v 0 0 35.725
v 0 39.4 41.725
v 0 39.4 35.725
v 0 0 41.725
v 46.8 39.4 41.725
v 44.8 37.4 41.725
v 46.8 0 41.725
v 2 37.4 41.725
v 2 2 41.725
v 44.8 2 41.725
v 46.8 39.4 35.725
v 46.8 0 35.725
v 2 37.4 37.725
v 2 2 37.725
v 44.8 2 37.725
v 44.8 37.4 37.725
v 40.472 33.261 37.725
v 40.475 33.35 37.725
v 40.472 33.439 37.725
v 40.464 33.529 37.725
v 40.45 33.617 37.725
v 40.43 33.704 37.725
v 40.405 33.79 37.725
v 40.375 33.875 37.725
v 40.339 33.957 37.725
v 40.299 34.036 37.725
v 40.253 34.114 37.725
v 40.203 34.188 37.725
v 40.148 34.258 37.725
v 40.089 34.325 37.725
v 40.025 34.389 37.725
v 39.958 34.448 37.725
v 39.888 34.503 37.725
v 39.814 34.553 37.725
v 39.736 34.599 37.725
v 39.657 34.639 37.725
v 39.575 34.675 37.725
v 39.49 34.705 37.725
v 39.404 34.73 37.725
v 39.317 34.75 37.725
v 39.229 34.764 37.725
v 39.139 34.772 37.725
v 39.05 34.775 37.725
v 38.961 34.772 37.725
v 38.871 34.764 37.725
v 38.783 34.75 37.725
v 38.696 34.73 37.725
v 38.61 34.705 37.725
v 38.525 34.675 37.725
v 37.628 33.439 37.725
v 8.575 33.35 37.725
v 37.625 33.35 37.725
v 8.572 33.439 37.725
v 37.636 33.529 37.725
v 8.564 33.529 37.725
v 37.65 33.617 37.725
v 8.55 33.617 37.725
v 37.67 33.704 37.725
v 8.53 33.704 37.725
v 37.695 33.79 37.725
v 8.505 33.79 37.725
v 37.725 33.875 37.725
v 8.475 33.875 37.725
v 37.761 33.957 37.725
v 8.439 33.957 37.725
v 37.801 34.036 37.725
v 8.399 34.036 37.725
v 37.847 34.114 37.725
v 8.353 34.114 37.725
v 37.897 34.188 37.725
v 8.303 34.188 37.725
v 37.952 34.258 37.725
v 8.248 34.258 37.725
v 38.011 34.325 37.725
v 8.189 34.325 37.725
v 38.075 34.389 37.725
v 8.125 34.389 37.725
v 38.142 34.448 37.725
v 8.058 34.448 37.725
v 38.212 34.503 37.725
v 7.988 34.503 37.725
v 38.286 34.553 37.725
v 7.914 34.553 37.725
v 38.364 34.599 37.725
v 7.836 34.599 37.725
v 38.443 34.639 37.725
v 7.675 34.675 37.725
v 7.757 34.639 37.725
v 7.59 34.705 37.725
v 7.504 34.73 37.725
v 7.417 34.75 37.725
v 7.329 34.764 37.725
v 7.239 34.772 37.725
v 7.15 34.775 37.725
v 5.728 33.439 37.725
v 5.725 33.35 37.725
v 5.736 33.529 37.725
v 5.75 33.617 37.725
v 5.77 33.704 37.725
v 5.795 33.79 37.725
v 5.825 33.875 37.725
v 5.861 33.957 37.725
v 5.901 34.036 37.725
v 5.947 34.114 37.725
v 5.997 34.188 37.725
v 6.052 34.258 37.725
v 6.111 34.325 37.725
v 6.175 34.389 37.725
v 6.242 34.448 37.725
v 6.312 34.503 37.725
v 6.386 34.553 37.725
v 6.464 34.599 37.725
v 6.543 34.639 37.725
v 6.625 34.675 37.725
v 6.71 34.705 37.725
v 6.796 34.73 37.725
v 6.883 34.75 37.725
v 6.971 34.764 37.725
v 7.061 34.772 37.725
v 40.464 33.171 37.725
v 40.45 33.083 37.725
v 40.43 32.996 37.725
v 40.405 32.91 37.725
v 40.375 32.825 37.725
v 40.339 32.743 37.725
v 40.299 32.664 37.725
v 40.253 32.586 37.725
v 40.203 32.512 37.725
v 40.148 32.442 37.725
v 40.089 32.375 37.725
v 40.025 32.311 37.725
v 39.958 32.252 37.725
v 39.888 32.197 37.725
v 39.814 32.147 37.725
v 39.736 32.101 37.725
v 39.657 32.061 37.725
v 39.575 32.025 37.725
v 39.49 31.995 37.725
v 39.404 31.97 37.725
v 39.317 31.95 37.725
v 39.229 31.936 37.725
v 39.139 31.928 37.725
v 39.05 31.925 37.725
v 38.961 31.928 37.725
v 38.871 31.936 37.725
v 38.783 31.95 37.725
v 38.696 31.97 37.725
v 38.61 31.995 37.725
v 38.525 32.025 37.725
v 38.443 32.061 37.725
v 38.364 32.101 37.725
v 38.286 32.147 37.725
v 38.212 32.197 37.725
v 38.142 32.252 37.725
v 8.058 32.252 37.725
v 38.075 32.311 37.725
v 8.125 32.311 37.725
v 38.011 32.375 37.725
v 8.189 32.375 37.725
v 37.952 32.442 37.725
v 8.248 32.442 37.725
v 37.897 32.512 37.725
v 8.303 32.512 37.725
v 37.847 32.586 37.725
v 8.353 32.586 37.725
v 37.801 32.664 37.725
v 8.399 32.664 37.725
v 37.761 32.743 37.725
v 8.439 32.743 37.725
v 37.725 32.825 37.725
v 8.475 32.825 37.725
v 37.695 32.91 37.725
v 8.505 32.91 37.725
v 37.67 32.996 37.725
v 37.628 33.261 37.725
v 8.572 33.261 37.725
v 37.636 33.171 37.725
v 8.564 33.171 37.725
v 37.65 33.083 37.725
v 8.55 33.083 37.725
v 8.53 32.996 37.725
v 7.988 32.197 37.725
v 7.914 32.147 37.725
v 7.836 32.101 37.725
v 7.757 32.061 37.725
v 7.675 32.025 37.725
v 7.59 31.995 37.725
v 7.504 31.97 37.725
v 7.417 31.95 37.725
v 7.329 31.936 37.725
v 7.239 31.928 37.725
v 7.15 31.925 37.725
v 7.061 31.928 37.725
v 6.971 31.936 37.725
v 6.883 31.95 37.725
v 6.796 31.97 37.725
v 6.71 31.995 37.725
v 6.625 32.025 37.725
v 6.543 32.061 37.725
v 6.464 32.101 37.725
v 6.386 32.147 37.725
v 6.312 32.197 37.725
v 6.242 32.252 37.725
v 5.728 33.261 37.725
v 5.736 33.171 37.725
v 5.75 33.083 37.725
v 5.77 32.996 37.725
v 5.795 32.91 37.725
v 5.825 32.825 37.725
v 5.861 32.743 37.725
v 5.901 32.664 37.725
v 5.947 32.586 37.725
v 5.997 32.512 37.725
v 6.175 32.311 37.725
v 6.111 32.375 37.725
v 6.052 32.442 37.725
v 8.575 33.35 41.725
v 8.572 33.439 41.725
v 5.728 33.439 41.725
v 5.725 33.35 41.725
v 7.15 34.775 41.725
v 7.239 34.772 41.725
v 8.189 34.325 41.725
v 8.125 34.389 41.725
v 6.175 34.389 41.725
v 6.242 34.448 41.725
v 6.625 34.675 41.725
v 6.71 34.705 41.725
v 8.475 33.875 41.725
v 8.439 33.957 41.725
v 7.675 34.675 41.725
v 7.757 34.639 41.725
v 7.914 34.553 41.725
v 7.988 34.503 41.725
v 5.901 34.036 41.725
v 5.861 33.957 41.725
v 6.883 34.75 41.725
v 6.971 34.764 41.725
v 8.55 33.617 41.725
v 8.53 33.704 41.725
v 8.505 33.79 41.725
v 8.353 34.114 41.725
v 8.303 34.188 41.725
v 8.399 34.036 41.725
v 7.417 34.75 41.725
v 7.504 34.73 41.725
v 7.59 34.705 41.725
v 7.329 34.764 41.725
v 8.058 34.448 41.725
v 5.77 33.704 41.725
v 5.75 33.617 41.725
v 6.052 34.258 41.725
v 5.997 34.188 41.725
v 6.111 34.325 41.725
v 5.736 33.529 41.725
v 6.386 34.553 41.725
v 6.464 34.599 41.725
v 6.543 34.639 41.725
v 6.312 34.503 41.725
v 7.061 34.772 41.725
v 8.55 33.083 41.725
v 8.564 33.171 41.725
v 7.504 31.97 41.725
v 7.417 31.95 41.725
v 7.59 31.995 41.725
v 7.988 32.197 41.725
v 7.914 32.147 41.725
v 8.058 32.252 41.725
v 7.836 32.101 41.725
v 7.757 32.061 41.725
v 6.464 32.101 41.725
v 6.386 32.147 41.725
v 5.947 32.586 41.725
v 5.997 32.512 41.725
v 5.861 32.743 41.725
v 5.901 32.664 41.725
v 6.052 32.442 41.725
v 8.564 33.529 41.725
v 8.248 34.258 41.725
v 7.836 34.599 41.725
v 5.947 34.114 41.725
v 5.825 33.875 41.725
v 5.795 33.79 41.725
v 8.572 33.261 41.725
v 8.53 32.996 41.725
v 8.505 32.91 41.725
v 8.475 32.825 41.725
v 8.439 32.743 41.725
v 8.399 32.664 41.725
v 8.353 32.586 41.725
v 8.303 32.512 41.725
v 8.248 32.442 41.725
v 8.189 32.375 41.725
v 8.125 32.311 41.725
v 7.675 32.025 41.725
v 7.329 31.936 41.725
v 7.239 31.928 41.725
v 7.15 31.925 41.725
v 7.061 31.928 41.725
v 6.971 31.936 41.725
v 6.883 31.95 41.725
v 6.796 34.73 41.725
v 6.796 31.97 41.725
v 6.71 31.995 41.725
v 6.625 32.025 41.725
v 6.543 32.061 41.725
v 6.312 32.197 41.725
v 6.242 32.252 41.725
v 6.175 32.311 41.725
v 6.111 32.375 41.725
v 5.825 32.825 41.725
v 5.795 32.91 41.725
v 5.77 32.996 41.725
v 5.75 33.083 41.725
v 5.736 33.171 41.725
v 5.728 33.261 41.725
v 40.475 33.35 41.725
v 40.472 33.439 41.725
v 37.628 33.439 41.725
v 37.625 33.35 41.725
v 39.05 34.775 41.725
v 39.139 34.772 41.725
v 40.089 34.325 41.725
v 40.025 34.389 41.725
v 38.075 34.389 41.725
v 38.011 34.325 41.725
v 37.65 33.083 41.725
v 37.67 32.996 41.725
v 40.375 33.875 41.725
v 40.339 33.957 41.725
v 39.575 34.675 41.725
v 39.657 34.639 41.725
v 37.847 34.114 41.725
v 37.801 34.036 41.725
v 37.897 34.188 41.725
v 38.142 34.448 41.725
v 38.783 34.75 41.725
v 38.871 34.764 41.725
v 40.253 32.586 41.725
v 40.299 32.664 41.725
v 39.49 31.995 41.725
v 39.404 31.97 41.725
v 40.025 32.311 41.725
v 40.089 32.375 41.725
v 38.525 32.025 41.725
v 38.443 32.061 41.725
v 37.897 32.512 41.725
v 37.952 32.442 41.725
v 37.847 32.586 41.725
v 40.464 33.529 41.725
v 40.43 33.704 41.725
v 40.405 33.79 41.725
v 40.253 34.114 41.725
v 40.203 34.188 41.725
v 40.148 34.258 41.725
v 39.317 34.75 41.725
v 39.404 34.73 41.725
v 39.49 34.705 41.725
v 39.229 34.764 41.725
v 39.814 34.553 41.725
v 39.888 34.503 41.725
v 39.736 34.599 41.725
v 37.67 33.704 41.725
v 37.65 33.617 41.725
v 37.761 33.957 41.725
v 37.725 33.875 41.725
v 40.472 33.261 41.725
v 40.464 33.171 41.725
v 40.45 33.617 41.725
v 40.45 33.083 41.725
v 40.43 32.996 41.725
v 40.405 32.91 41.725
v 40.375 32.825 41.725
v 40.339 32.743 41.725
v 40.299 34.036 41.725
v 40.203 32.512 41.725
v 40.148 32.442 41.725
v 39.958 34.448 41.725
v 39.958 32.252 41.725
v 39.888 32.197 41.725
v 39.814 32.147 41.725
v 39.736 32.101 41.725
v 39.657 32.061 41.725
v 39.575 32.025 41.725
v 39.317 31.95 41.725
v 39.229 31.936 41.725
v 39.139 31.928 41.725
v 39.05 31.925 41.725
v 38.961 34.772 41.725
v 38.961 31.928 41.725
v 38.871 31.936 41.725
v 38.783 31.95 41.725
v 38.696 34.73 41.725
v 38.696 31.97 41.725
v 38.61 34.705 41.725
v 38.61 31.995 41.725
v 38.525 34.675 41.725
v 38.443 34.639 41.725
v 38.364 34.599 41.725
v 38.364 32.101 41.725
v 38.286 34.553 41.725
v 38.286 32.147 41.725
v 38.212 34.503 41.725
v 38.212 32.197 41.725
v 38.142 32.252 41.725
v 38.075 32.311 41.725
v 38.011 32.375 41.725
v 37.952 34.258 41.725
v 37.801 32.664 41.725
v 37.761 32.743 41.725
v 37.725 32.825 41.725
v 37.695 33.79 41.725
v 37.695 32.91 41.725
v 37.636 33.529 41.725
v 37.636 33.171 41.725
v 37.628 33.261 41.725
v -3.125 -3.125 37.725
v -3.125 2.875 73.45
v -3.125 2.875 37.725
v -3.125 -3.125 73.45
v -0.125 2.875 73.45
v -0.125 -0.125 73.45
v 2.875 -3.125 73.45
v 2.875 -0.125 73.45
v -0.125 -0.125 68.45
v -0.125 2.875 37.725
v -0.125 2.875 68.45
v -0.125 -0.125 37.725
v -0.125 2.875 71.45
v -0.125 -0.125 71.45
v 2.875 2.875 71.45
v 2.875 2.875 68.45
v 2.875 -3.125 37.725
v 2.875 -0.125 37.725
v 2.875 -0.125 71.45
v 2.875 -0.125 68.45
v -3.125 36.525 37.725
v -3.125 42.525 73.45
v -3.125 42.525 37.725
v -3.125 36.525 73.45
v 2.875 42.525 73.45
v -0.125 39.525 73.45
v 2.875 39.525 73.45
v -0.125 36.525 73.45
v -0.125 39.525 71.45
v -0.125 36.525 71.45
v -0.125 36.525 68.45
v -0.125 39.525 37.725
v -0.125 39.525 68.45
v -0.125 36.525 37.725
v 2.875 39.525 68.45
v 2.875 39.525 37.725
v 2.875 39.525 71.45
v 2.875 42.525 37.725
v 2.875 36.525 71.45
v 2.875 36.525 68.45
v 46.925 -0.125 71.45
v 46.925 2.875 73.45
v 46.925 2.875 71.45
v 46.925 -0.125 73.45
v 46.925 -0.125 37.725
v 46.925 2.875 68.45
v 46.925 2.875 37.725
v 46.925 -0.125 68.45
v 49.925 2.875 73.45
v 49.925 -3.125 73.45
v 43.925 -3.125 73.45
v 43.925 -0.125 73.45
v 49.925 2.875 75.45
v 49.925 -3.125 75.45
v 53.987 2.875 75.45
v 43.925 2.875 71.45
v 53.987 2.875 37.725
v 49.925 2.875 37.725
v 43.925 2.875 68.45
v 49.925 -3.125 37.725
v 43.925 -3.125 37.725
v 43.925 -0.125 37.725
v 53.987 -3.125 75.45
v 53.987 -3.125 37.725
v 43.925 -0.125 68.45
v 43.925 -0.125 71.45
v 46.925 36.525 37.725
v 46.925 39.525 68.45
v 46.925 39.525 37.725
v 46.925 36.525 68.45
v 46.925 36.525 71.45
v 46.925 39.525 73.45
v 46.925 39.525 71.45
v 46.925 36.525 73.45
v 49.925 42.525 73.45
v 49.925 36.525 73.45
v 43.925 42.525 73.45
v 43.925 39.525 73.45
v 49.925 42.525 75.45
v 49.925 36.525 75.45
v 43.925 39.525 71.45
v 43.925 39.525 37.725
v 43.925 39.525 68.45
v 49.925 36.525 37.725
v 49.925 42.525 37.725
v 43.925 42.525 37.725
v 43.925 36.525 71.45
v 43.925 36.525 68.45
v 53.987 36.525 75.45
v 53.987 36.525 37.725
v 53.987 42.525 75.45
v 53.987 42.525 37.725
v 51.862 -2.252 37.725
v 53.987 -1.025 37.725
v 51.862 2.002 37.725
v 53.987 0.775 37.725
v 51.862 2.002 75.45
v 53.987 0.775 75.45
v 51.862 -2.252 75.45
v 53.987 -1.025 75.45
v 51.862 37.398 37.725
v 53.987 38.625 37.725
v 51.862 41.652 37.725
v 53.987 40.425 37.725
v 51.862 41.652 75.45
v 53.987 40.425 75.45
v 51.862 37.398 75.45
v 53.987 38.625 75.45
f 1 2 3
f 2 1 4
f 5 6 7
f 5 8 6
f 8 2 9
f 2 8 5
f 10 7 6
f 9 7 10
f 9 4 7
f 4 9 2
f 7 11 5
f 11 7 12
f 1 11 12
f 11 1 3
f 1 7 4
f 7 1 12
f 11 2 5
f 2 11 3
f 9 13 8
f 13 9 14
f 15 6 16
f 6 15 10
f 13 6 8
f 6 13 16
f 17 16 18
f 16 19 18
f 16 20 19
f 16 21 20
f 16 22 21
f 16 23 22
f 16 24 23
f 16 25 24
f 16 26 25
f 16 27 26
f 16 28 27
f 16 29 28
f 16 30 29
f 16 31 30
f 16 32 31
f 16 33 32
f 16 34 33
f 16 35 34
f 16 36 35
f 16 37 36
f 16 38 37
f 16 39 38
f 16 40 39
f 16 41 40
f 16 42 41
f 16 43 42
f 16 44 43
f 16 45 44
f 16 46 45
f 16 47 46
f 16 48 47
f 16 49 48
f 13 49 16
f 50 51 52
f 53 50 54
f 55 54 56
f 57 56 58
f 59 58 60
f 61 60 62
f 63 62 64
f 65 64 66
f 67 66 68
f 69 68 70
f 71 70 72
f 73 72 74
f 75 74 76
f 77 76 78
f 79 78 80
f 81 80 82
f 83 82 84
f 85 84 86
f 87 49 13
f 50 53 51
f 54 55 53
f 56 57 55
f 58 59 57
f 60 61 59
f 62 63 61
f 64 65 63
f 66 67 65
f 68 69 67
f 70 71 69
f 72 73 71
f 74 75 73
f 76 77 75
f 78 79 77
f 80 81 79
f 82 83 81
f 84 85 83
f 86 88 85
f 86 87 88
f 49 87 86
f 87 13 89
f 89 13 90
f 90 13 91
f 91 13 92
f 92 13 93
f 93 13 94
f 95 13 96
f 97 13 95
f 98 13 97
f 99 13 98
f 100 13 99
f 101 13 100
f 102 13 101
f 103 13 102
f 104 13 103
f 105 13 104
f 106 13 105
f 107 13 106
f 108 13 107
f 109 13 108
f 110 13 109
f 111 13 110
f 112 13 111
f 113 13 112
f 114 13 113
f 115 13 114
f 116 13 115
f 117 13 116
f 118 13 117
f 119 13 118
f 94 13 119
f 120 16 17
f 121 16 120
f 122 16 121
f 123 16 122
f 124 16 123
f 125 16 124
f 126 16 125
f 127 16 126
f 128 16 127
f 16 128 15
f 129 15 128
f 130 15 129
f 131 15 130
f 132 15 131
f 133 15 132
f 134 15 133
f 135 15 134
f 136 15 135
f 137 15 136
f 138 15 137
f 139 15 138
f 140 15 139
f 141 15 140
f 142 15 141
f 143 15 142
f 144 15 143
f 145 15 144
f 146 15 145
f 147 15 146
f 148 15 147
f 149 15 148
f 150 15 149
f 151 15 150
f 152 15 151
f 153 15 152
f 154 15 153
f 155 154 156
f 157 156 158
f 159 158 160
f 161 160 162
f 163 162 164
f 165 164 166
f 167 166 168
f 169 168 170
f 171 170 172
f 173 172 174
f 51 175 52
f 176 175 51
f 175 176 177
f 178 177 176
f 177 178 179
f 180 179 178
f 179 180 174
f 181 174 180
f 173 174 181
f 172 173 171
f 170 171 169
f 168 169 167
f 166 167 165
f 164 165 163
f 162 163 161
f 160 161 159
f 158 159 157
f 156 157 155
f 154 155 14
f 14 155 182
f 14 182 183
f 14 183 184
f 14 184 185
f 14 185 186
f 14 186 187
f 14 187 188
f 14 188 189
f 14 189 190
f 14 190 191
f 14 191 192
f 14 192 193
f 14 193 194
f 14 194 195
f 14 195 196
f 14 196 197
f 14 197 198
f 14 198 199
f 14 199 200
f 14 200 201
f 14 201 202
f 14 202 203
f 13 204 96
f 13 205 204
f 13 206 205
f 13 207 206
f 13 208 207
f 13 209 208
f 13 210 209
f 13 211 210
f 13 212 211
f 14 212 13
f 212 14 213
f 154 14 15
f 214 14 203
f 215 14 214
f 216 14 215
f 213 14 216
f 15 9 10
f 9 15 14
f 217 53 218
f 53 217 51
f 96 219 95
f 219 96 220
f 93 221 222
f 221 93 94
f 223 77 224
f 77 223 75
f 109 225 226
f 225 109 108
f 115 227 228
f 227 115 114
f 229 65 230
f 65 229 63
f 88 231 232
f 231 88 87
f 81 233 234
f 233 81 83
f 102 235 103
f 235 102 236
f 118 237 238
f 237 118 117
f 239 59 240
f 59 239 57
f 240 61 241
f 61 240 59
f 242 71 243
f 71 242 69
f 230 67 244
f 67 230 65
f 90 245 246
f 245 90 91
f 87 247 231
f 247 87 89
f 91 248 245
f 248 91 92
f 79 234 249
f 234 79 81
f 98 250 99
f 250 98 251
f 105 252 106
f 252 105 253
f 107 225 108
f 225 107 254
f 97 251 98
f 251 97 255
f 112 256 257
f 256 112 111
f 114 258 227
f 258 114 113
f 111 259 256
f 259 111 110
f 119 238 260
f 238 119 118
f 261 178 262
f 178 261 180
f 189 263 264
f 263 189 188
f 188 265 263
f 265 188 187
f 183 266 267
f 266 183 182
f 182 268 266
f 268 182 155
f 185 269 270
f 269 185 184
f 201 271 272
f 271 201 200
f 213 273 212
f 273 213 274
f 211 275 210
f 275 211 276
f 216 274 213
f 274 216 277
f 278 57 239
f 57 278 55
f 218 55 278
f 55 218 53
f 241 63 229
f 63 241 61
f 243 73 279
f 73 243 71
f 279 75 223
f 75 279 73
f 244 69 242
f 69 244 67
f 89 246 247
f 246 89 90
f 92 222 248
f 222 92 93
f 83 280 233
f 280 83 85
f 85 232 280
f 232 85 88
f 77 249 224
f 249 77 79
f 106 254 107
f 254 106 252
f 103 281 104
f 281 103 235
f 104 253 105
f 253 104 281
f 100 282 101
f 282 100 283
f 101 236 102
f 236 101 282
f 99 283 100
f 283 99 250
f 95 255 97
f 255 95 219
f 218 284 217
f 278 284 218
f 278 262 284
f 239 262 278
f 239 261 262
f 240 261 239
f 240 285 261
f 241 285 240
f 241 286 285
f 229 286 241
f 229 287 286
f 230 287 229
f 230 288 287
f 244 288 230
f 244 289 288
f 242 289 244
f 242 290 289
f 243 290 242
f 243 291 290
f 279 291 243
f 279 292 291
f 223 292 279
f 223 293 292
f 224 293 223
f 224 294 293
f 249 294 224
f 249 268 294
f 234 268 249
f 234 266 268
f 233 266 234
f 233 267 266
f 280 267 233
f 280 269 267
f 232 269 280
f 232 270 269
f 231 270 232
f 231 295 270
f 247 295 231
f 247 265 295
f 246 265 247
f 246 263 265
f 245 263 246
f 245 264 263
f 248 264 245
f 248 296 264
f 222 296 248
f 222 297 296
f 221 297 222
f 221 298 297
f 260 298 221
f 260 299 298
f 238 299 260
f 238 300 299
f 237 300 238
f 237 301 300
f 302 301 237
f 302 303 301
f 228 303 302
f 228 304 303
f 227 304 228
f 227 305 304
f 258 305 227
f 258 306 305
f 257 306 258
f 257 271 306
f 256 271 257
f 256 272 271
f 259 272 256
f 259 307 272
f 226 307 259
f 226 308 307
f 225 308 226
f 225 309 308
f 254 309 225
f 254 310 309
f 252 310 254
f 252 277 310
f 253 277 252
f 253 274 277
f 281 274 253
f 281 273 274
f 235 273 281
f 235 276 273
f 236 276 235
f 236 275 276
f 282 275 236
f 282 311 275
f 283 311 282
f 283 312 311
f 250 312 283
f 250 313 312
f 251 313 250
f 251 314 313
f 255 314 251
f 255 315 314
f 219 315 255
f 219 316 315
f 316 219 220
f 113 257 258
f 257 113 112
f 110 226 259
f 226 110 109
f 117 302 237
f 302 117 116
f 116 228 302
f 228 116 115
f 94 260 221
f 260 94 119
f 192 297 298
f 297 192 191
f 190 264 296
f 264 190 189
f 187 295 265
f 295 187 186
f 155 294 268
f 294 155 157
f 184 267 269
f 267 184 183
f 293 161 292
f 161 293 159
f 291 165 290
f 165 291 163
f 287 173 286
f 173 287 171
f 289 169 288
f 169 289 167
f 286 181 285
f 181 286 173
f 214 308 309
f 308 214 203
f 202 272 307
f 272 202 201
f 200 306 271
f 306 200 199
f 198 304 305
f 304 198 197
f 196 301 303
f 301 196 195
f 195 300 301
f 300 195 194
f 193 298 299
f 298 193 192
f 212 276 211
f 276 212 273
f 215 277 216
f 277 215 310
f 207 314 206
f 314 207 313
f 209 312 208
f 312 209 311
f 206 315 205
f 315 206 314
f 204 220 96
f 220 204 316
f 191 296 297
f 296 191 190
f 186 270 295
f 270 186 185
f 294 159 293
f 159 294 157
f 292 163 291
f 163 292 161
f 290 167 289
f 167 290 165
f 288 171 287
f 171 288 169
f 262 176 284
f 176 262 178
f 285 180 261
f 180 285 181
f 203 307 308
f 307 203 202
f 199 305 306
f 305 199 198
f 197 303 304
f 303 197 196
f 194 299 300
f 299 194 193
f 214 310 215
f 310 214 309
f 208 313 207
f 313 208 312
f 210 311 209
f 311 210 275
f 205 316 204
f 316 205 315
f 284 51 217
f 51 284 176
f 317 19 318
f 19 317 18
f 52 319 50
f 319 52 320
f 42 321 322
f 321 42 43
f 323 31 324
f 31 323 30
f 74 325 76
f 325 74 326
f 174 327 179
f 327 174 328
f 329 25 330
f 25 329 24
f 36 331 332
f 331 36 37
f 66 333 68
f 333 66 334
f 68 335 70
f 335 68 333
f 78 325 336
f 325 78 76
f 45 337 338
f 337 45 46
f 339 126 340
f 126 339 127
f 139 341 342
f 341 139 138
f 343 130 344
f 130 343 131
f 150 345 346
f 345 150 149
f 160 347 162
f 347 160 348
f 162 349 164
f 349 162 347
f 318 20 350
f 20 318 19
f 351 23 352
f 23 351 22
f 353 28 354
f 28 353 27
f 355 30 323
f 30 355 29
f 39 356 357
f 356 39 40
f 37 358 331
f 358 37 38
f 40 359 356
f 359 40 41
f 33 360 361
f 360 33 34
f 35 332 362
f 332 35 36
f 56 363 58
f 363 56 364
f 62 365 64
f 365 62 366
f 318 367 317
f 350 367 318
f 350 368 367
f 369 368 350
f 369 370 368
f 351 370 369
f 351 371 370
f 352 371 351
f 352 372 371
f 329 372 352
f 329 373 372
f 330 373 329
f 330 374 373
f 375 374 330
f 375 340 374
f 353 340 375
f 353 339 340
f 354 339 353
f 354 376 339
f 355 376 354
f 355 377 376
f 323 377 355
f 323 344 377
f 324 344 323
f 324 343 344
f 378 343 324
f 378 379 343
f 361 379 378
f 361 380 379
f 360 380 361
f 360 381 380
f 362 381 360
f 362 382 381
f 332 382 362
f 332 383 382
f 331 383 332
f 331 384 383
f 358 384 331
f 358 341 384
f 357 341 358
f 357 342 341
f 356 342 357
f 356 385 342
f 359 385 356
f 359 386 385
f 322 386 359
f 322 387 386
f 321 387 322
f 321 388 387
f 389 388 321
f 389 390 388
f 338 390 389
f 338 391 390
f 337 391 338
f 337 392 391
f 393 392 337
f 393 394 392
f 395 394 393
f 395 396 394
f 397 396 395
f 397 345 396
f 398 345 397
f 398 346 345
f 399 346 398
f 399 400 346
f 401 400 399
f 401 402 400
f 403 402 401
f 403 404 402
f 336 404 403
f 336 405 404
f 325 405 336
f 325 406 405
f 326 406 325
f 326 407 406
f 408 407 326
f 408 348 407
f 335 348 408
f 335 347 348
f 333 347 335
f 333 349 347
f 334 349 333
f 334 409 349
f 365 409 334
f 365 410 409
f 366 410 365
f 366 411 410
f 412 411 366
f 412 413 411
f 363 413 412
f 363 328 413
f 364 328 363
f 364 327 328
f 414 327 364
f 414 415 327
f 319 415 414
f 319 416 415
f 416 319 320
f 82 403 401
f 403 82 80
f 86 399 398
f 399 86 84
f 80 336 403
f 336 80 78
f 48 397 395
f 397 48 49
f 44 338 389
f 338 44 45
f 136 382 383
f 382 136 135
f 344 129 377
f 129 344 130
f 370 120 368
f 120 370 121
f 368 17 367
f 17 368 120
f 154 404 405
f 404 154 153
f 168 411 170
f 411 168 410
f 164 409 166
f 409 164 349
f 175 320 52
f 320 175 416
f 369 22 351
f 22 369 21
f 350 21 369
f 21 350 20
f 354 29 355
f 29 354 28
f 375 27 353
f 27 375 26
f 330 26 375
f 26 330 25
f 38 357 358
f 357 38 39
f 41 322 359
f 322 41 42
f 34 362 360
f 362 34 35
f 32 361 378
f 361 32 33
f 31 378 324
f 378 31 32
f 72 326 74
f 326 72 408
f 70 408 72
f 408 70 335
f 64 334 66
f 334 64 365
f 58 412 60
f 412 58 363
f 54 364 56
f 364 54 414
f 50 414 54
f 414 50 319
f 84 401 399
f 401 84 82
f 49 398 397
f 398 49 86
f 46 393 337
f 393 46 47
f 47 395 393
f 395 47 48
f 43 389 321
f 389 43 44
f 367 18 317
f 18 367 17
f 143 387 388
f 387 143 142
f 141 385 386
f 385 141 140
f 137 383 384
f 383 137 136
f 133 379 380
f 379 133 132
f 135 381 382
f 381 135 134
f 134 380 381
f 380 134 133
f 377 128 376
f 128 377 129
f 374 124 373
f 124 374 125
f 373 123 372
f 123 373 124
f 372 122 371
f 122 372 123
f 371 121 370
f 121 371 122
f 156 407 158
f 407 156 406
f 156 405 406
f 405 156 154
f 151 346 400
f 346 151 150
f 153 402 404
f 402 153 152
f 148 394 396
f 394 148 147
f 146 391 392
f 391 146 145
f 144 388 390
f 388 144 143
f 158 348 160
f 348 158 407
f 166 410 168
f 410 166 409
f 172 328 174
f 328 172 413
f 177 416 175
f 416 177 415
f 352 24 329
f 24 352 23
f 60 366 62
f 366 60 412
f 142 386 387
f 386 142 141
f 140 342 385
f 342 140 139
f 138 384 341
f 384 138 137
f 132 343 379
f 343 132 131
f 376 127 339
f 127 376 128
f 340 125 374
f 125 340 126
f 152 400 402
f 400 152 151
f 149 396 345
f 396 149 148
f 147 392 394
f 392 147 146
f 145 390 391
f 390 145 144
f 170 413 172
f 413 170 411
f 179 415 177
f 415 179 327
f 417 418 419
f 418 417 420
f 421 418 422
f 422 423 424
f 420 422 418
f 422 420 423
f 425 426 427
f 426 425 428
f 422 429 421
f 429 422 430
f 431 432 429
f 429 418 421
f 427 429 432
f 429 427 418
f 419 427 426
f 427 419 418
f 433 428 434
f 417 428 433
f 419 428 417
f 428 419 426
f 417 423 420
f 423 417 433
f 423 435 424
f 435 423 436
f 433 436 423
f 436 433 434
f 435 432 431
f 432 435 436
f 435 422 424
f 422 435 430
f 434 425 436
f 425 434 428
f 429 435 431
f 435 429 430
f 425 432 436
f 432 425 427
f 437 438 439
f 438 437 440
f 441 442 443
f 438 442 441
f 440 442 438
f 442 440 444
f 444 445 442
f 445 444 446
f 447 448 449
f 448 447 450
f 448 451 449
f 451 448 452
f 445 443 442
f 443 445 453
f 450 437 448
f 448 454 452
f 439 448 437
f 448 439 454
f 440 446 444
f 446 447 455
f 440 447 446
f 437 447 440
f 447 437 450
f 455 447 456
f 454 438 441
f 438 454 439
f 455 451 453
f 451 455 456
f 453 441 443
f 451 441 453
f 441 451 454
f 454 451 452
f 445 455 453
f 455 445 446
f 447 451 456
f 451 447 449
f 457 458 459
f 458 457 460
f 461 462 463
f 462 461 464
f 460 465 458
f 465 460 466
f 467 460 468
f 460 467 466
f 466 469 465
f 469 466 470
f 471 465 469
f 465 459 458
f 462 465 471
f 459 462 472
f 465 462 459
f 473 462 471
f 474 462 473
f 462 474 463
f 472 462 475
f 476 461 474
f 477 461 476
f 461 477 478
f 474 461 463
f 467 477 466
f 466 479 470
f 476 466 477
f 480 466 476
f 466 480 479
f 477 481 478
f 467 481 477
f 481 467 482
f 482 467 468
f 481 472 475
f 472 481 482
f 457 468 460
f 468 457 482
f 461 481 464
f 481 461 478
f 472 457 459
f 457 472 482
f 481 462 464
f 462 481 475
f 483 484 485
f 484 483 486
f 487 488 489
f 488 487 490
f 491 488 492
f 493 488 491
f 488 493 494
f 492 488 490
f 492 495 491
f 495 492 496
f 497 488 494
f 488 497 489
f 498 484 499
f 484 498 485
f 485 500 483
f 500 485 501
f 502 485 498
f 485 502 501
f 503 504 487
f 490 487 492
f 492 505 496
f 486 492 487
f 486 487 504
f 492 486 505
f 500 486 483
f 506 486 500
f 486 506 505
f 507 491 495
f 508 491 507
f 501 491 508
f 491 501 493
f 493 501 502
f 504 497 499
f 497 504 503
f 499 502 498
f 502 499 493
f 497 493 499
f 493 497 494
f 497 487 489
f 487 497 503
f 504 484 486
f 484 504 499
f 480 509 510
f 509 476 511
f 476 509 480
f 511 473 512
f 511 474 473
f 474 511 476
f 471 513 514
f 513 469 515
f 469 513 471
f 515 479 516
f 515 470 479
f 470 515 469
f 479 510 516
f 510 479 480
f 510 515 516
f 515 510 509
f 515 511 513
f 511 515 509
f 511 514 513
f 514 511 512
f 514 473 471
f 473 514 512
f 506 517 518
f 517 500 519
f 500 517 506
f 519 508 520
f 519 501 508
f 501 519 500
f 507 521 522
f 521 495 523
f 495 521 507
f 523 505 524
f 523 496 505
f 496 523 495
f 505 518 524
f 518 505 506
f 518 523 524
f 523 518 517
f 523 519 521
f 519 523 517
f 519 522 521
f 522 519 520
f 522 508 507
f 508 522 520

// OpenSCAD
// file: funcArduinoUNO.scad
module funcArduinoUNO(res=10,amais=2.6){
    // ----- ----- ----- Declaração de Variáveis ----- ----- ----- //
    folga1=0.125;

    pcbx=41.8;
    pcbx1=66.5;
    pcbx2=68.65;
    pcby1=2.9;
    pcby2=4.65;
    pcby3=53.55-14.95;
    pcby4=53.55-13.3;
    pcby5=53.55;
    pcbz=1.6;
    pcbr=3.45/2;
    pcbalt=1.6;
    pbcentre=(35+28.8)/2;
    pcbfuro1=3.1+pcbr;

    conx=16.35;
    cony=12.1;
    conz=10.7;
    tCx=-7.8;
    tCy=28.4+3.1;

    alix=14;
    aliy=8.9;
    aliz=11;
    tAx=-4.65;
    tAy=3.1;

    pin1x=20.75;
    pin2x=15.6;
    pin3x=25.8;
    pin4x=20.75;
    piny=2.55;
    pinz=8.55;
    tpin1x=26.7;
    tpin2x=tpin1x+pin1x+2.05;
    tpin3x=18;
    tpin4x=tpin3x+pin3x+0.9;
    tpinbaixoy=1.3;
    tpinaltoy=pcby5-1-piny;

    conectDisspx=9;
    conectDisspy=9;
    conectDisspz=4.55;
    tDsx=2;
    tDsy=2.75;

    conectEDSx=2.35;
    conectEDSy=7.2;
    conectEDSz=2.6;
    tEDSx=2.55;

    conectStepx=9.1;
    conectStepy=9.85;
    conectStepz=5.7;
    tSx=pcbx-conectStepx-0.6;

    conectStep123x=1.45;
    conectStep123y=3.25;
    conectStep123z=1.25;
    tS1x=tSx+conectStepx/2-(3*conectStep123x+2)/2;
    tS2x=tS1x+1+conectStep123x;
    tS3x=tS2x+1+conectStep123x;

    fio06=0.6;
    fioz=5.75;

    rcx=6.75;
    rcy=6.55;
    rcz=2;
    trcx=2.35;
    trcy=pcby5-rcy-0.7;

    rbr=3/2;
    rbalt=1;
    trbx=trcx+(rcx-6.25)+6.25/2;
    trby=trcy+rcy/2;

    ISCPx=5;
    ISCPy=7.35;
    ISCPz=2.6;
    tISCPx=pcbx2-ISCPx-0.8;
    tISCPy=24.4;

    oscr=3.5/2;
    oscalt=4;
    oscx=4.45;
    oscy=11.3;
    oscz=1.1;
    oschull=10-3.5;
    toscx=pcbx2-oscx-13.4;
    toscy=32.35-oscy+tpinbaixoy;

    osc2r=3.5/2;
    osc2alt=4;
    osc2x=11.3;
    osc2y=4.45;
    osc2z=1.1;
    osc2hull=10-3.5;
    tosc2x=pcbx2-osc2x-46.1;
    tosc2y=pcby5-osc2y-12.9;

    capr=6.3/2;
    capalt=6;
    cap2alt=6-4.1;
    tcapx=pcbx2-4*capr-43.65-0.6;
    tcap2x=pcbx2-2*capr-43.65;
    tcapy=6.05;

    // ----- ----- ----- Declaração de Variáveis ----- ----- ----- //
    module arrayPins(pit,alt,l,n){
        for(i=[0:1:n-1]){
            translate([i*(l/n)+(l/n)/2-pit/2,0,0])cube([pit,pit,alt]);
        }
    }

    // ----- ----- ----- MAIN ----- ----- ----- //
    // PCB
    difference(){
        linear_extrude(pcbz+amais)polygon(points=[[    0,    0],
                                                  [pcbx1,    0],
                                                  [pcbx1,pcby1],
                                                  [pcbx2,pcby2],
                                                  [pcbx2,pcby3],
                                                  [pcbx1,pcby4],
                                                  [pcbx1,pcby5],
                                                  [    0,pcby5]]);
        #translate([12.65+pcbr,0.65+pcbr,0])cylinder(pcbalt+amais,pcbr,pcbr,$fn=res);
        #translate([13.85+pcbr,pcby5-0.7-pcbr,0])cylinder(pcbalt+amais,pcbr,pcbr,$fn=res);
        #translate([pcbx2-0.35-pcbr,5.8+pcbr,0])cylinder(pcbalt+amais,pcbr,pcbr,$fn=res);
        #translate([pcbx2-0.4-pcbr,pcby5-16.3-pcbr,0])cylinder(pcbalt+amais,pcbr,pcbr,$fn=res);
    }
    // Periféricos de Comunicação/Conexão e Alimentação
    translate([tCx,tCy,pcbz+amais])cube([conx,cony,conz]);
    translate([tAx,tAy,pcbz+amais])cube([alix,aliy,aliz]);
    // Pinos Macho e Fêmea
    translate([tpin1x,tpinbaixoy,pcbz+amais])cube([pin1x,piny,pinz]);
    translate([tpin1x,tpinbaixoy+piny+0.5,pcbz+amais])cube([pin1x,piny,conectEDSz]);
    translate([tpin1x,tpinbaixoy+piny+0.5+piny/2-fio06/2,pcbz+amais+conectEDSz])arrayPins(fio06,fioz,pin1x,8);
    translate([tpin2x,tpinbaixoy,pcbz+amais])cube([pin2x,piny,pinz]);
    translate([tpin2x,tpinbaixoy+piny+0.5,pcbz+amais])cube([pin2x,piny,conectEDSz]);
    translate([tpin2x,tpinbaixoy+piny+0.5+piny/2-fio06/2,pcbz+amais+conectEDSz])arrayPins(fio06,fioz,pin2x,6);
    translate([tpin3x,tpinaltoy,pcbz+amais])cube([pin3x,piny,pinz]);
    translate([tpin3x,tpinaltoy-piny-0.5,pcbz+amais])cube([pin3x,piny,conectEDSz]);
    translate([tpin3x,tpinaltoy-piny-0.5+piny/2-fio06/2,pcbz+amais+conectEDSz])arrayPins(fio06,fioz,pin3x,10);
    translate([tpin4x,tpinaltoy,pcbz+amais])cube([pin4x,piny,pinz]);
    translate([tpin4x,tpinaltoy-piny-0.5,pcbz+amais])cube([pin4x,piny,conectEDSz]);
    translate([tpin4x,tpinaltoy-piny-0.5+piny/2-fio06/2,pcbz+amais+conectEDSz])arrayPins(fio06,fioz,pin4x,8);
    // Botão de Reset
    translate([trcx,trcy,pcbz+amais])cube([rcx,rcy,rcz]);
    translate([trbx,trby,pcbz+amais+rcz])cylinder(rbalt,rbr,rbr,$fn=res);
    // Conexão ISCP
    translate([tISCPx,tISCPy,pcbz+amais])cube([ISCPx,ISCPy,ISCPz]);
    translate([tISCPx,tISCPy+(ISCPy/3)/2-fio06/2,pcbz+amais+ISCPz])arrayPins(fio06,fioz,ISCPx,2);
    translate([tISCPx,tISCPy+ISCPy/3+(ISCPy/3)/2-fio06/2,pcbz+amais+ISCPz])arrayPins(fio06,fioz,ISCPx,2);
    translate([tISCPx,tISCPy+ISCPy/3+ISCPy/3+(ISCPy/3)/2-fio06/2,pcbz+amais+ISCPz])arrayPins(fio06,fioz,ISCPx,2);
    // Osciladores 1 e 2
    translate([toscx,toscy,pcbz+amais])cube([oscx,oscy,oscz]);
    hull(){
        translate([toscx+oscx/2,toscy+oscy/2-oschull/2,pcbz+amais])cylinder(oscalt,oscr,oscr,$fn=res);
        translate([toscx+oscx/2,toscy+oscy/2+oschull/2,pcbz+amais])cylinder(oscalt,oscr,oscr,$fn=res);
    }
    translate([tosc2x,tosc2y,pcbz+amais])cube([osc2x,osc2y,osc2z]);
    hull(){
        translate([tosc2x+osc2x/2-oschull/2,tosc2y+osc2y/2,pcbz+amais])cylinder(oscalt,oscr,oscr,$fn=res);
        translate([tosc2x+osc2x/2+oschull/2,tosc2y+osc2y/2,pcbz+amais])cylinder(oscalt,oscr,oscr,$fn=res);
    }
    // Capacitores
    translate([tcapx,tcapy,pcbz+amais])cube([2*capr,2*capr,cap2alt]);
    translate([tcap2x,tcapy,pcbz+amais])cube([2*capr,2*capr,cap2alt]);
    translate([tcapx+capr,tcapy+capr,pcbz+amais])cylinder(capalt,capr,capr,$fn=res);
    translate([tcap2x+capr,tcapy+capr,pcbz+amais])cylinder(capalt,capr,capr,$fn=res);
}

funcArduinoUNO(100);
// file: funcBaseEL3DArduinoUNO.scad
use <funcArduinoUNO.scad>
module funcBaseEL3DArduinoUNO(res=100,amais2=2.6){
    // ----- ----- ----- Declaração de Variáveis ----- ----- ----- //
    folga1=0.125;
    folga10=1;

    pcbx=41.8;
    pcbx1=66.5;
    pcbx2=68.65;
    pcby1=2.9;
    pcby2=4.65;
    pcby3=53.55-14.95;
    pcby4=53.55-13.3;
    pcby5=53.55;
    pcbz=1.6;
    pcbr=3.45/2;
    pcbalt=1.6;
    pbcentre=(35+28.8)/2;
    pcbfuro1=3.1+pcbr;

    conx=16.35;
    cony=12.1;
    conz=10.7;
    tCx=-7.8;
    tCy=28.4+3.1;

    alix=14;
    aliy=8.9;
    aliz=11;
    tAx=-4.65;
    tAy=3.1;

    pin1x=20.75;
    pin2x=15.6;
    pin3x=25.8;
    pin4x=20.75;
    piny=2.55;
    pinz=8.55;
    tpin1x=26.7;
    tpin2x=tpin1x+pin1x+2.05;
    tpin3x=18;
    tpin4x=tpin3x+pin3x+0.9;
    tpinbaixoy=1.3;
    tpinaltoy=pcby5-1-piny;

    conectDisspx=9;
    conectDisspy=9;
    conectDisspz=4.55;
    tDsx=2;
    tDsy=2.75;

    conectEDSx=2.35;
    conectEDSy=7.2;
    conectEDSz=2.6;
    tEDSx=2.55;

    conectStepx=9.1;
    conectStepy=9.85;
    conectStepz=5.7;
    tSx=pcbx-conectStepx-0.6;

    conectStep123x=1.45;
    conectStep123y=3.25;
    conectStep123z=1.25;
    tS1x=tSx+conectStepx/2-(3*conectStep123x+2)/2;
    tS2x=tS1x+1+conectStep123x;
    tS3x=tS2x+1+conectStep123x;

    fio06=0.6;
    fioz=5.75;

    rcx=6.75;
    rcy=6.55;
    rcz=2;
    trcx=2.35;
    trcy=pcby5-rcy-0.7;

    rbr=3/2;
    rbalt=1;
    trbx=trcx+(rcx-6.25)+6.25/2;
    trby=trcy+rcy/2;

    ISCPx=5;
    ISCPy=7.35;
    ISCPz=2.6;
    tISCPx=pcbx2-ISCPx-0.8;
    tISCPy=24.4;

    oscr=3.5/2;
    oscalt=4;
    oscx=4.45;
    oscy=11.3;
    oscz=1.1;
    oschull=10-3.5;
    toscx=pcbx2-oscx-13.4;
    toscy=32.35-oscy+tpinbaixoy;

    osc2r=3.5/2;
    osc2alt=4;
    osc2x=11.3;
    osc2y=4.45;
    osc2z=1.1;
    osc2hull=10-3.5;
    tosc2x=pcbx2-osc2x-46.1;
    tosc2y=pcby5-osc2y-12.9;

    capr=6.3/2;
    capalt=6;
    cap2alt=6-4.1;
    tcapx=pcbx2-4*capr-43.65-0.6;
    tcap2x=pcbx2-2*capr-43.65;
    tcapy=6.05;

    espParede=2;
    baseARDx=pcbx2+2*folga10;
    baseARDy=pcby5+2*folga10;
    baseARDz=2.4;

    // ----- ----- ----- Declaração de Variáveis ----- ----- ----- //
    module arrayPins(pit,alt,l,n){
        for(i=[0:1:n-1]){
            translate([i*(l/n)+(l/n)/2-pit/2,0,0])cube([pit,pit,alt]);
        }
    }
    
    //translate([espParede+folga10,espParede+folga10,espParede])funcArduinoUNO(res,amais2);

    // ----- ----- ----- MAIN ----- ----- ----- //

    // Base do Arduino
    difference(){
        translate([-folga1,-folga1,0])
        cube([baseARDx+2*espParede+2*folga1,baseARDy+2*espParede+2*folga1,baseARDz+espParede]);
        #translate([espParede,espParede,espParede])cube([baseARDx,baseARDy,baseARDz]);
    }
    // Encaixe Cilíndrico do Arduino
    translate([espParede+folga10,espParede+folga10,espParede]){
        translate([12.65+pcbr,0.65+pcbr,0])cylinder(pcbalt+amais2+espParede,pcbr-folga1,pcbr-folga1,$fn=res);
        translate([13.85+pcbr,pcby5-0.7-pcbr,0])cylinder(pcbalt+amais2+espParede,pcbr-folga1,pcbr-folga1,$fn=res);
        translate([pcbx2-0.35-pcbr,5.8+pcbr,0])cylinder(pcbalt+amais2+espParede,pcbr-folga1,pcbr-folga1,$fn=res);
        translate([pcbx2-0.4-pcbr,pcby5-16.3-pcbr,0])cylinder(pcbalt+amais2+espParede,pcbr-folga1,pcbr-folga1,$fn=res);
    }
} 

funcBaseEL3DArduinoUNO();
// file: funcWcmcuStepperMotor.scad
module funcWcmcuStepperMotor(res=10,amais=2){
    // ----- ----- ----- Declaração de Variáveis ----- ----- ----- //
    folga1=0.125;

    pcbx=41.8;
    pcby=34.4;
    pcbz=1.6;
    pcbr=(35-28.8)/4;
    pcbalt=1.6;
    pbcentre=(35+28.8)/2;
    pcbfuro1=3.1+pcbr;
    pcbfuro2=pcby-2-pcbr;

    conectMotorx=12.4;
    conectMotory=7;
    conectMotorz=5.5;
    tMx=28.2;
    tMy=-0.65;

    conectAlix=10.5;
    conectAliy=2.35;
    conectAliz=14.15+10.5-pcbz;
    tAx=3.5;
    tAy=1.4;

    conectDRVx=20.9;
    conectDRVy=15.3;
    conectDRVz=14.25;
    tDRVx=7.25;
    tDRVy=6.55;

    conectDisspx=9;
    conectDisspy=9;
    conectDisspz=4.55;
    tDsx=2;
    tDsy=2.75;
    tDsz=conectDRVz;

    conectEDSx=2.35;
    conectEDSy=7.2;
    conectEDSz=2.6;
    tEDSx=2.55;
    tEDSy=pcby-14.3-conectEDSy;

    //conectEDSx=2.35;
    //conectEDSy=7.2;
    //conectEDSz=2.6;
    //tEDSx=2.55;
    //tEDSy=pcby-14.3-conectEDSy;

    conectStepx=9.1;
    conectStepy=9.85;
    conectStepz=5.7;
    tSx=pcbx-conectStepx-0.6;
    tSy=pcby-12.8-conectStepy;

    conectStep123x=1.45;
    conectStep123y=3.25;
    conectStep123z=1.25;
    tS1x=tSx+conectStepx/2-(3*conectStep123x+2)/2;
    tS1y=tSy+conectStepy/2-conectStep123y/2;
    tS2x=tS1x+1+conectStep123x;
    tS2y=tSy+conectStepy/2-conectStep123y/2;
    tS3x=tS2x+1+conectStep123x;
    tS3y=tSy+conectStepy/2-conectStep123y/2;

    fio06=0.6;
    fioz=5.75;

    // ----- ----- ----- MAIN ----- ----- ----- //
    difference(){
        cube([pcbx,pcby,pcbz+amais]);
        #translate([pcbfuro1,pcbfuro2,0])cylinder(pcbalt+amais,pcbr,pcbr,$fn=res);
        #translate([pcbfuro1+pbcentre,pcbfuro2,0])cylinder(pcbalt+amais,pcbr,pcbr,$fn=res);
    }

    translate([tMx,tMy,pcbz+amais])cube([conectMotorx,conectMotory,conectMotorz]);
    translate([tAx,tAy,pcbz+amais])cube([conectAlix,conectAliy,conectAliz]);
    translate([tDRVx,tDRVy,pcbz+amais])cube([conectDRVx,conectDRVy,conectDRVz]);
    translate([tDRVx+tDsx,tDRVy+tDsy,tDsz+pcbz+amais])cube([conectDisspx,conectDisspy,conectDisspz]);
    translate([tEDSx,tEDSy,pcbz+amais])cube([conectEDSx,conectEDSy,conectEDSz]);
    translate([tSx,tSy,pcbz+amais])cube([conectStepx,conectStepy,conectStepz]);
    translate([tS1x,tS1y,conectStepz+pcbz+amais])cube([conectStep123x,conectStep123y,conectStep123z]);
    translate([tS2x,tS2y,conectStepz+pcbz+amais])cube([conectStep123x,conectStep123y,conectStep123z]);
    translate([tS3x,tS3y,conectStepz+pcbz+amais])cube([conectStep123x,conectStep123y,conectStep123z]);
    translate([tEDSx+conectEDSx/2-fio06/2,tEDSy+(conectEDSy/3)/2-fio06/2,conectEDSz+pcbz+amais])cube([fio06,fio06,fioz]);
    translate([tEDSx+conectEDSx/2-fio06/2,tEDSy+(conectEDSy/3)/2-fio06/2+conectEDSy/3,conectEDSz+pcbz+amais])cube([fio06,fio06,fioz]);
    translate([tEDSx+conectEDSx/2-fio06/2,tEDSy+(conectEDSy/3)/2-fio06/2+conectEDSy/3+conectEDSy/3,conectEDSz+pcbz+amais])cube([fio06,fio06,fioz]);
}

funcWcmcuStepperMotor();
// main file
// ----- ----- ----- Declaração de Variáveis ----- ----- ----- //
res=100;
folga1=0.125;
folga10=0.5;

amais=2; //0 ou 2

pcbx=41.8;
pcby=34.4;
pcbz=1.6;

//pcbx=41.8;
pcbx1=66.5;
pcbx2=68.65;
pcby1=2.9;
pcby2=4.65;
pcby3=53.55-14.95;
pcby4=53.55-13.3;
pcby5=53.55;
//pcbz=1.6;
//pcbr=3.45/2;
//pcbalt=1.6;
//pbcentre=(35+28.8)/2;
//pcbfuro1=3.1+pcbr;

espParede=2;
basex=pcbx+2*folga10;
basey=pcby+2*folga10;
basez=2*espParede;
baseARDx=pcbx2+2*folga10;
baseARDy=pcby5+2*folga10;
baseARDz=2.4;

pcbr=(35-28.8)/4-folga1;
pcbalt=2*espParede;
pbcentre=(35+28.8)/2;
pcbfuro1=3.1+(35-28.8)/4;
pcbfuro2=pcby-2-(35-28.8)/4;

/*
conectMotorx=12.4;
conectMotory=7;
conectMotorz=5.5;
tMx=28.2;
tMy=-0.65;

conectAlix=10.5;
conectAliy=2.35;
conectAliz=14.15+10.5-pcbz;
tAx=3.5;
tAy=1.4;

conectDRVx=20.9;
conectDRVy=15.3;
conectDRVz=14.25;
tDRVx=7.25;
tDRVy=6.55;

conectDisspx=9;
conectDisspy=9;
conectDisspz=4.55;
tDsx=2;
tDsy=2.75;
tDsz=conectDRVz;

conectEDSx=2.35;
conectEDSy=7.2;
conectEDSz=2.6;
tEDSx=2.55;
tEDSy=pcby-14.3-conectEDSy;

//conectEDSx=2.35;
//conectEDSy=7.2;
//conectEDSz=2.6;
//tEDSx=2.55;
//tEDSy=pcby-14.3-conectEDSy;

conectStepx=9.1;
conectStepy=9.85;
conectStepz=5.7;
tSx=pcbx-conectStepx-0.6;
tSy=pcby-12.8-conectStepy;

conectStep123x=1.45;
conectStep123y=3.25;
conectStep123z=1.25;
tS1x=tSx+conectStepx/2-(3*conectStep123x+2)/2;
tS1y=tSy+conectStepy/2-conectStep123y/2;
tS2x=tS1x+1+conectStep123x;
tS2y=tSy+conectStepy/2-conectStep123y/2;
tS3x=tS2x+1+conectStep123x;
tS3y=tSy+conectStepy/2-conectStep123y/2;

fio06=0.6;
fioz=5.75;
*/

peDx=3;
peDy=3;
peDz=14.15+10.5-pcbz+pcbz+amais+espParede+14.15/2;
fixbasey=11;

// ----- ----- ----- Declaração de Funções ----- ----- ----- //
use <funcWcmcuStepperMotor.scad>
// Replica do Modulo do Motor de Passo
//translate([espParede+folga10,espParede+folga10,espParede])funcWcmcuStepperMotor(res,amais);
use <funcBaseEL3DArduinoUNO.scad>
// Replica do Modulo do Motor de Passo
//translate([20+basex+2*espParede+2*folga1,0,0])
//translate([espParede+folga10,espParede+folga10,espParede])funcBaseEL3DArduinoUNO(res);
use <funcoes_GFCx.scad>
//funcao_2d_array_cilindros(r,d,h,nx,ny,geo,res,nome="Conjunto 1")

// ----- ----- ----- MAIN ----- ----- ----- //
/*
// Suporte de Baixo (Controle de X)
// Base
difference(){
    translate([-folga1,-folga1,0])
    cube([basex+2*espParede+2*folga1,basey+2*espParede+2*folga1,basez+espParede]);
    #translate([espParede,espParede,espParede])cube([basex,basey,basez]);
}
// Encaixe Cilíndrico
translate([espParede+folga10,espParede+folga10,espParede]){
    translate([pcbfuro1,pcbfuro2,0])cylinder(pcbalt,pcbr,pcbr,$fn=res);
    translate([pcbfuro1+pbcentre,pcbfuro2,0])cylinder(pcbalt,pcbr,pcbr,$fn=res);
}
// Sustentação
translate([-peDx-folga1,-folga1,0])cube([peDx,peDy,peDz+espParede]);
translate([-peDx-folga1,-peDy-folga1,0])cube([peDx,peDy,peDz+espParede]);
translate([-folga1,-peDy-folga1,0])cube([peDx,peDy,peDz+espParede]);
translate([-folga1,-folga1,peDz-peDx])cube([peDx,peDx,peDx]);
//-------------------------------------------------------------------------------------------------------
translate([-peDx-folga1,basey+2*espParede-peDy+folga1,0])cube([peDx,peDy,peDz+espParede]);
translate([-peDx-folga1,basey+2*espParede+folga1,0])cube([peDx,peDy,peDz+espParede]);
translate([0-folga1,basey+2*espParede+folga1,0])cube([peDx,peDy,peDz+espParede]);
translate([0-folga1,basey+2*espParede-peDy+folga1,peDz-peDx])cube([peDx,peDx,peDx]);
//-------------------------------------------------------------------------------------------------------
translate([basex+2*espParede+folga1,-folga1,0])cube([peDx,peDy,peDz+espParede]);
translate([basex+2*espParede+folga1,-peDy-folga1,0])cube([peDx,peDy,peDz+espParede]);
translate([-peDx+basex+2*espParede+folga1,-peDy-folga1,0])cube([peDx,peDy,peDz+espParede]);
translate([-peDx+basex+2*espParede+folga1,-folga1,peDz-peDx])cube([peDx,peDx,peDx]);
//-------------------------------------------------------------------------------------------------------
translate([basex+2*espParede+folga1,basey+2*espParede-peDy+folga1,0])cube([peDx,peDy,peDz+espParede]);
translate([basex+2*espParede+folga1,basey+2*espParede+folga1,0])cube([peDx,peDy,peDz+espParede]);
translate([basex+2*espParede-peDx+folga1,basey+2*espParede+folga1,0])cube([peDx,peDy,peDz+espParede]);
translate([basex+2*espParede-peDx+folga1,basey+2*espParede-peDy+folga1,peDz-peDx])cube([peDx,peDx,peDx]);
*/
// Suporte de Meio (Controle de Y)
// Base
translate([0,0,peDz])
difference(){
    cube([basex+2*espParede,basey+2*espParede,basez+espParede]);
    #translate([espParede,espParede,espParede])cube([basex,basey,basez]);
}
// Encaixe Cilíndrico
translate([0,0,peDz])
translate([espParede+folga10,espParede+folga10,espParede]){
    translate([pcbfuro1,pcbfuro2,0])cylinder(pcbalt,pcbr,pcbr,$fn=res);
    translate([pcbfuro1+pbcentre,pcbfuro2,0])cylinder(pcbalt,pcbr,pcbr,$fn=res);
}
// Sustentação
translate([0,0,peDz+espParede]){
    translate([-peDx-folga1,-folga1,0])cube([peDx,peDy,peDz]);
    translate([-peDx-folga1,-peDy-folga1,0])cube([peDx,peDy,peDz]);
    translate([-folga1,-peDy-folga1,0])cube([peDx,peDy,peDz]);
    translate([-folga1,-folga1,peDz-peDx-espParede])cube([peDx,peDx,peDx]);
    //-------------------------------------------------------------------------------------------------------
    translate([-peDx-folga1,basey+2*espParede-peDy+folga1,0])cube([peDx,peDy,peDz]);
    translate([-peDx-folga1,basey+2*espParede+folga1,0])cube([peDx,peDy,peDz]);
    translate([0-folga1,basey+2*espParede+folga1,0])cube([peDx,peDy,peDz]);
    translate([0-folga1,basey+2*espParede-peDy+folga1,peDz-peDx-espParede])cube([peDx,peDx,peDx]);
    //-------------------------------------------------------------------------------------------------------
    translate([basex+2*espParede+folga1,-folga1,0])cube([peDx,peDy,peDz]);
    translate([basex+2*espParede+folga1,-peDy-folga1,0])cube([peDx,peDy,peDz]);
    translate([-peDx+basex+2*espParede+folga1,-peDy-folga1,0])cube([peDx,peDy,peDz]);
    translate([-peDx+basex+2*espParede+folga1,-folga1,peDz-peDx-espParede])cube([peDx,peDx,peDx]);
    //-------------------------------------------------------------------------------------------------------
    translate([basex+2*espParede+folga1,basey+2*espParede-peDy+folga1,0])cube([peDx,peDy,peDz]);
    translate([basex+2*espParede+folga1,basey+2*espParede+folga1,0])cube([peDx,peDy,peDz]);
    translate([basex+2*espParede-peDx+folga1,basey+2*espParede+folga1,0])cube([peDx,peDy,peDz]);
    translate([basex+2*espParede-peDx+folga1,basey+2*espParede-peDy+folga1,peDz-peDx-espParede])cube([peDx,peDx,peDx]);
}
/*
// Suporte de Cima (Controle de Z)
// Base
translate([0,0,2*peDz])
difference(){
    cube([basex+2*espParede,basey+2*espParede,basez+espParede]);
    #translate([espParede,espParede,espParede])cube([basex,basey,basez]);
}
// Encaixe Cilíndrico
translate([0,0,2*peDz])
translate([espParede+folga10,espParede+folga10,espParede]){
    translate([pcbfuro1,pcbfuro2,0])cylinder(pcbalt,pcbr,pcbr,$fn=res);
    translate([pcbfuro1+pbcentre,pcbfuro2,0])cylinder(pcbalt,pcbr,pcbr,$fn=res);
}
*/
echo(2*peDz+basez+espParede);
/*
difference(){
    translate([0,0,0]){
        translate([peDx,-fixbasey-folga1,0])cube([basex-espParede,fixbasey,2*espParede]);
        translate([peDx,basey+2*espParede+2*folga1-folga1,0])cube([basex-espParede,fixbasey,2*espParede]);
    }
    #translate([peDx+(basex-espParede)/2-25.25/2,-folga1-fixbasey/2,0])
    #funcao_2d_array_cilindros(6/2+folga1,25.25,2*espParede,2,3,1,res,"EncaixeBaseCil");
}*/

// Encaixe Andorinha entre Arduino e os Módulos dos Motores de Passo
translate([peDx+basex+2*espParede+folga1,peDy-folga1,peDz+espParede])
rotate([0,0,-90])
andorinha(2*peDy,30,peDy*(1.4/2),2*peDy,(2/3)*peDy,peDz+espParede,folga1,1);
translate([peDx+basex+2*espParede+folga1,basey+2*espParede-peDy+folga1+2*peDy,peDz+espParede])
rotate([0,0,-90])
andorinha(2*peDy,30,peDy*(1.4/2),2*peDy,(2/3)*peDy,peDz+espParede,folga1,1);
/*
translate([2*peDy+peDx+basex+2*espParede+folga1,peDy-2*peDy,0])
translate([0,0,baseARDx+2*espParede+2*folga1])
rotate([0,90,0])funcBaseEL3DArduinoUNO(res);*/
